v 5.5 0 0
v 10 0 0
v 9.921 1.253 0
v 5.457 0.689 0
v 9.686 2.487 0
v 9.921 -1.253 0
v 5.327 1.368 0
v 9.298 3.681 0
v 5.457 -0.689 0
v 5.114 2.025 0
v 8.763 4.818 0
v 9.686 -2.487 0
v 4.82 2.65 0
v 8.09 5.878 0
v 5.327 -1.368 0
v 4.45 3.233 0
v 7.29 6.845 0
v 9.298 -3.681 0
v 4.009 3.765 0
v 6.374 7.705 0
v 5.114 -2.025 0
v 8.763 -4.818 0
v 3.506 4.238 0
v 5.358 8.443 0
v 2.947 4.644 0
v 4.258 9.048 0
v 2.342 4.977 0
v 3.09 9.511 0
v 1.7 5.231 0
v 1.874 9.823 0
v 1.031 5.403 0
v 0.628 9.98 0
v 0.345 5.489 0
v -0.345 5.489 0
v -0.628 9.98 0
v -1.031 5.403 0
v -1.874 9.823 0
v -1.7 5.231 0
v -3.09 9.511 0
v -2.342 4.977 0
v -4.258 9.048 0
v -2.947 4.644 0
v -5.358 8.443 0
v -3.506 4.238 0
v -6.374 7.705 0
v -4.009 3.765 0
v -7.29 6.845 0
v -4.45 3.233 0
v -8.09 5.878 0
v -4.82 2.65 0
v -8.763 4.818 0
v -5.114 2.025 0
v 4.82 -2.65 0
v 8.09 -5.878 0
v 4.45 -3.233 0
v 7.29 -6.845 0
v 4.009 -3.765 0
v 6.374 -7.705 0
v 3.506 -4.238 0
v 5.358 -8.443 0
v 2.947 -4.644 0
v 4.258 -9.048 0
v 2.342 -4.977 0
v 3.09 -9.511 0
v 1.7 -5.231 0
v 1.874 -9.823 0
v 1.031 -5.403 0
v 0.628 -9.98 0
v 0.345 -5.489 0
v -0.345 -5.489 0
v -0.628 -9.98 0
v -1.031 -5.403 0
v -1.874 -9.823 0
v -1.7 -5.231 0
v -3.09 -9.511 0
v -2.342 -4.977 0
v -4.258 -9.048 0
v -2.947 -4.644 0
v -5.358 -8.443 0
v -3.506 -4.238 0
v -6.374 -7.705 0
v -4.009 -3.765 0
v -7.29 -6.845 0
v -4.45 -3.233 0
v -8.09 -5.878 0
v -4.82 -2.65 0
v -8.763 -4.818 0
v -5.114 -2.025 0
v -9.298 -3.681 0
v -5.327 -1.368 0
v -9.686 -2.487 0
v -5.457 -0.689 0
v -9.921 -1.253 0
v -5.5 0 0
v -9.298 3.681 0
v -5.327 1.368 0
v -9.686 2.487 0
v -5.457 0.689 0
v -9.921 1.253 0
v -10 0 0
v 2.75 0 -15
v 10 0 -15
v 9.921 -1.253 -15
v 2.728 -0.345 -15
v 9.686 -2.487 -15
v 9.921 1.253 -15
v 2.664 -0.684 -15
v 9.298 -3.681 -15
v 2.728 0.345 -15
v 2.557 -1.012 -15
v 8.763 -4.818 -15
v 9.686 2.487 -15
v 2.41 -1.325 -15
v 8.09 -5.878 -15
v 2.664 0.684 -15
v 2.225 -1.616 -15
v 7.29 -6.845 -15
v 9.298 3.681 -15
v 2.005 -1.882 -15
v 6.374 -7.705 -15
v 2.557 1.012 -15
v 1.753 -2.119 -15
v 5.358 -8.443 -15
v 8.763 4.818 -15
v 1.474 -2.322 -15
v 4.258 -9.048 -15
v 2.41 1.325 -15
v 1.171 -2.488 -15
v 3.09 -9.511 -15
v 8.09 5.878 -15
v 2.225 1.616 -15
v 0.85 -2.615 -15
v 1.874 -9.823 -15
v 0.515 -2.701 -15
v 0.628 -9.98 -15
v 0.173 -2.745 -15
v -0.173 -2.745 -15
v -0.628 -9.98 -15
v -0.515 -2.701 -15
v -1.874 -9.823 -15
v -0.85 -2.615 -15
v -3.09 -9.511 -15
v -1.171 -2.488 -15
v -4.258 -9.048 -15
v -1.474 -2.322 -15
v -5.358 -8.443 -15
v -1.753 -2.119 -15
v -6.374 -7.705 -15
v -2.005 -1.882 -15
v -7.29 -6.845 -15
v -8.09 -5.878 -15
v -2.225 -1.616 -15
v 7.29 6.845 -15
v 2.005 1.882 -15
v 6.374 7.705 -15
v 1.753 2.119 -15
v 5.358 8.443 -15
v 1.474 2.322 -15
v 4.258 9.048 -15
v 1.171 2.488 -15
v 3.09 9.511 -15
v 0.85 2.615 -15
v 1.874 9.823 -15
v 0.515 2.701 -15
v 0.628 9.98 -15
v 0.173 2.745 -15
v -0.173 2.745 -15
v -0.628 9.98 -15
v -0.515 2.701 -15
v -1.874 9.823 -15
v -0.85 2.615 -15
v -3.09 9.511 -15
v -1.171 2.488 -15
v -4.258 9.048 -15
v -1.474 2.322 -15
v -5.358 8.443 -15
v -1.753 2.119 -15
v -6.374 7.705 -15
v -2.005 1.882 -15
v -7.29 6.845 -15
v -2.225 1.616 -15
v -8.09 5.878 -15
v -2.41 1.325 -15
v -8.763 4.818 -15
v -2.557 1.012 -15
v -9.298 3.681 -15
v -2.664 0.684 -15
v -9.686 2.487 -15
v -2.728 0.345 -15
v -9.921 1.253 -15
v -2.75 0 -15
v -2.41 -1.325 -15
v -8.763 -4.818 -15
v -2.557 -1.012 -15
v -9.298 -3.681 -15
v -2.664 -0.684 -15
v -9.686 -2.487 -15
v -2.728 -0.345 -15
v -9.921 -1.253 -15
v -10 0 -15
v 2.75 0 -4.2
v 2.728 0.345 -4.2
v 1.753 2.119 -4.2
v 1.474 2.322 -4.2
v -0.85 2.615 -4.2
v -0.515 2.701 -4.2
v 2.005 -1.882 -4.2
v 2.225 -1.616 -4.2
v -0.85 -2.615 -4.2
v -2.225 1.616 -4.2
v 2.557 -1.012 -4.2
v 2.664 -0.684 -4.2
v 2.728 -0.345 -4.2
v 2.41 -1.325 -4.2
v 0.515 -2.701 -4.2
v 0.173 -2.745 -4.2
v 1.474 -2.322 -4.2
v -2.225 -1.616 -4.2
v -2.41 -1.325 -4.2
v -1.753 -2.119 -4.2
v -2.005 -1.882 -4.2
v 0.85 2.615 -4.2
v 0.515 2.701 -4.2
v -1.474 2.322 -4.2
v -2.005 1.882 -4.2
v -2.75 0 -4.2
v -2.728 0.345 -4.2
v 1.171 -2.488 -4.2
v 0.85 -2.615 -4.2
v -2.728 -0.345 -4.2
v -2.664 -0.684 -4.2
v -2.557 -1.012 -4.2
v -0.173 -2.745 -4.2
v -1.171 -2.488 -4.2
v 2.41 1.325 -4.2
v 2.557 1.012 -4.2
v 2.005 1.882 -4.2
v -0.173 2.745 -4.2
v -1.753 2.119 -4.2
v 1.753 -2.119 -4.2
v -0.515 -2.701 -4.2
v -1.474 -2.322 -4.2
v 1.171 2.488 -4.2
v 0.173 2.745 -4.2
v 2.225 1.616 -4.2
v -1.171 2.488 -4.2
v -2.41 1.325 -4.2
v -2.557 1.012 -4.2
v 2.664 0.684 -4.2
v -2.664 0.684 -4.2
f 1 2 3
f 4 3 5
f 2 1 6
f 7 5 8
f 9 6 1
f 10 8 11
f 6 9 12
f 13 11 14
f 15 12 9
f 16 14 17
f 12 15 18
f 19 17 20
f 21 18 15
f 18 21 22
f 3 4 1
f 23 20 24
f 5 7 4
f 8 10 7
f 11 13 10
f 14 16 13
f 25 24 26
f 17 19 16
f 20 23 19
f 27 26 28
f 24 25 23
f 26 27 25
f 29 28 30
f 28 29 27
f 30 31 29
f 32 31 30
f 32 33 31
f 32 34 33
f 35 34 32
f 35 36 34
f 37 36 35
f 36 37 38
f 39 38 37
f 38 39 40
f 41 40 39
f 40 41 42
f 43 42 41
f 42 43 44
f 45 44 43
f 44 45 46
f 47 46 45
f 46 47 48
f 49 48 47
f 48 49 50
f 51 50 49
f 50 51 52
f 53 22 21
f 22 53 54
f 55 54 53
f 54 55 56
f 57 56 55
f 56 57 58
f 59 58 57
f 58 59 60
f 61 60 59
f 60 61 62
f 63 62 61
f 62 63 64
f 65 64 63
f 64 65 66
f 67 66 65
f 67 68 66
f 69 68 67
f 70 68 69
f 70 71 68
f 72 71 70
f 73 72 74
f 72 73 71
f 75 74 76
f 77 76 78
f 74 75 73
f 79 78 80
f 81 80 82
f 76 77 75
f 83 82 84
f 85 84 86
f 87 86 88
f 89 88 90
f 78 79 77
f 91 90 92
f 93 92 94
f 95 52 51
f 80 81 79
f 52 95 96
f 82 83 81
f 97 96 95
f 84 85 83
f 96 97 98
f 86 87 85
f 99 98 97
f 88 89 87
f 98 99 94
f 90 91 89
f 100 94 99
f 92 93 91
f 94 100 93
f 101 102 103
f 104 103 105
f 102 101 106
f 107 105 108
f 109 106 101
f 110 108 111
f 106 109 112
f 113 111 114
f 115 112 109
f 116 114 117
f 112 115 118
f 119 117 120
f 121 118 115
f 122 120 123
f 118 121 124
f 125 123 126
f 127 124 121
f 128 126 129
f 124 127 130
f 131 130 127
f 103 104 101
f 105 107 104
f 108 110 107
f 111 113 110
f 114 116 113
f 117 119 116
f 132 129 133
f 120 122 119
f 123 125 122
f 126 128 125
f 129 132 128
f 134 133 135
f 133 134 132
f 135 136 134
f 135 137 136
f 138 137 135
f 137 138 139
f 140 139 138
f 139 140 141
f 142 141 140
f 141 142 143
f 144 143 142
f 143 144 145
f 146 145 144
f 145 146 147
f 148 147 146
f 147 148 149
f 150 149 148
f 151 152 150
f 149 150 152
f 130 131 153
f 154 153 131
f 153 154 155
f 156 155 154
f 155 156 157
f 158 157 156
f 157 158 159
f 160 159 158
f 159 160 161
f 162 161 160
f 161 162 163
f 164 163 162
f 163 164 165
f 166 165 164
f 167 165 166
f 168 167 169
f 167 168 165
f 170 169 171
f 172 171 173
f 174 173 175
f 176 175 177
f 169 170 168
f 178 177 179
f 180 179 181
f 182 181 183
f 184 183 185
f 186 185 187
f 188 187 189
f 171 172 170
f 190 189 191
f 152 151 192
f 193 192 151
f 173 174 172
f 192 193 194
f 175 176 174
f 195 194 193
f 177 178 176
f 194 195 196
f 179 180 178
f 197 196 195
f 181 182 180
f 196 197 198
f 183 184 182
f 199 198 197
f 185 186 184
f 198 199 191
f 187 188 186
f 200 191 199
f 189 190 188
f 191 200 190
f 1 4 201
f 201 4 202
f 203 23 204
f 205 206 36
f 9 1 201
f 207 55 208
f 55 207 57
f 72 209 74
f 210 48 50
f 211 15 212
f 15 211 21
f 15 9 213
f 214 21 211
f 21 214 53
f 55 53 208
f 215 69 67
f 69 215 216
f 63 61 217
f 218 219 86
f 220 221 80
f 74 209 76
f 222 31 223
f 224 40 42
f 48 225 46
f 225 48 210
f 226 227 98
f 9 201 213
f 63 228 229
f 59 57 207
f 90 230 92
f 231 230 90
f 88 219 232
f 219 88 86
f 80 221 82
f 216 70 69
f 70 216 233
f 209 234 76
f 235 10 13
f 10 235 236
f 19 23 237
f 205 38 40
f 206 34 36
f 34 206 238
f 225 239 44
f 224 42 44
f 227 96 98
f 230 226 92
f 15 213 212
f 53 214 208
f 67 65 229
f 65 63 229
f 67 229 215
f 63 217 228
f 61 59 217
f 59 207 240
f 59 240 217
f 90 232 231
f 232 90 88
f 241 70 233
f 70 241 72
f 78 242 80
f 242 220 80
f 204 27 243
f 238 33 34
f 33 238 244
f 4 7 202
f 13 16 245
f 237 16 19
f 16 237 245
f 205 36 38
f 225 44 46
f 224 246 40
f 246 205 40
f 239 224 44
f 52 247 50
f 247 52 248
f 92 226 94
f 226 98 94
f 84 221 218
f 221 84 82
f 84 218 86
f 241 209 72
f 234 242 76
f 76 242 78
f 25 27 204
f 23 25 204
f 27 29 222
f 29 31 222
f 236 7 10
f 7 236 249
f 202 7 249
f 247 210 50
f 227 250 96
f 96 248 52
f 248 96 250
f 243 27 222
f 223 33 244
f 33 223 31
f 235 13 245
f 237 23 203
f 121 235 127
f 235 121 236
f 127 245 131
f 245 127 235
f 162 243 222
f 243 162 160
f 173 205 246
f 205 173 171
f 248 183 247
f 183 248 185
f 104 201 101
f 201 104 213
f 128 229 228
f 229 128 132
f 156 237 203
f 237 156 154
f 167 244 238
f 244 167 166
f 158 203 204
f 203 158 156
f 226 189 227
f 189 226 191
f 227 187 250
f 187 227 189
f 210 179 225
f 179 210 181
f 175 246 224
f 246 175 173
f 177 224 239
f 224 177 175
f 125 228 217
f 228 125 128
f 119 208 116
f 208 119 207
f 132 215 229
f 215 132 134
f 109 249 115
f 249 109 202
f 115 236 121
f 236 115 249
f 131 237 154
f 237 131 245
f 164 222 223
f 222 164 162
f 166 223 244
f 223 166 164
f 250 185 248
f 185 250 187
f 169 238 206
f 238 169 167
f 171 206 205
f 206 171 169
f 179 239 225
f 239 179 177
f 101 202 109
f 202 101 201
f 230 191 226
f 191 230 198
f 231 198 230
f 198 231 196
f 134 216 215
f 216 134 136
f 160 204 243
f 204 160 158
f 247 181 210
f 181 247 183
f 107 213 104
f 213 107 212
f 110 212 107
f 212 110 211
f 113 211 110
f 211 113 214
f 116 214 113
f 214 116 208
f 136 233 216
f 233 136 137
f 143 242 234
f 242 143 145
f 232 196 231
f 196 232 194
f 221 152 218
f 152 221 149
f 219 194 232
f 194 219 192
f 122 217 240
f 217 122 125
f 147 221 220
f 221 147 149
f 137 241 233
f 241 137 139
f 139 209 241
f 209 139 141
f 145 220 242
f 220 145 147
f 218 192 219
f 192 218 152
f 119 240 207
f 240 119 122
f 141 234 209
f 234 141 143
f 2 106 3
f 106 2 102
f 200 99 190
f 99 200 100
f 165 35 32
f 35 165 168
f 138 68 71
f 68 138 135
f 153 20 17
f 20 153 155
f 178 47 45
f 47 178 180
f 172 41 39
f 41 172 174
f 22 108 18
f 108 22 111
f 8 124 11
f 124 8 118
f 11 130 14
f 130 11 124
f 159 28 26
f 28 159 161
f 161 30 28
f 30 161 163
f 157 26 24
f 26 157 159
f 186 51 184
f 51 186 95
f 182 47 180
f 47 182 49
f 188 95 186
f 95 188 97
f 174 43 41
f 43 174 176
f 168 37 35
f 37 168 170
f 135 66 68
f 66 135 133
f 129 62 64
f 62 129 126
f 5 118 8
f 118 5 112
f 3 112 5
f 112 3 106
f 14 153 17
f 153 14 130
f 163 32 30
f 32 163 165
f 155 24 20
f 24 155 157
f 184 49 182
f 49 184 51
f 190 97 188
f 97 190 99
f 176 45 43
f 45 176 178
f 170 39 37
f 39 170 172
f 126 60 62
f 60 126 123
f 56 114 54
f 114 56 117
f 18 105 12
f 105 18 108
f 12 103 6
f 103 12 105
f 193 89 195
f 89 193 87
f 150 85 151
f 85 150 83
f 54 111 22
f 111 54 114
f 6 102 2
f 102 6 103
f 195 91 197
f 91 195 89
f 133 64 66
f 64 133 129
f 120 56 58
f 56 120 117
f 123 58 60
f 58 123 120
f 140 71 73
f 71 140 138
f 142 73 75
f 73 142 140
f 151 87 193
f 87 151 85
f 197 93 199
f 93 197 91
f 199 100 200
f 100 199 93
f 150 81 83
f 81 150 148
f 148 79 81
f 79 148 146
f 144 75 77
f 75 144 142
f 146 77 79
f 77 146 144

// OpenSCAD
$fn = 50;


difference() {
	union() {
		translate(v = [0, 0, -15.0000000000]) {
			cylinder(h = 15, r = 10.0000000000);
		}
		cylinder(h = 0, r = 16.0000000000);
	}
	union() {
		translate(v = [0, 0, 0]) {
			rotate(a = [0, 0, 0]) {
				difference() {
					union() {
						#translate(v = [0, 0, -15.0000000000]) {
							cylinder(h = 15, r = 2.2500000000);
						}
						#translate(v = [0, 0, -4.2000000000]) {
							cylinder(h = 4.2000000000, r = 10.0000000000, r1 = 2.7500000000, r2 = 5.5000000000);
						}
						#translate(v = [0, 0, -15.0000000000]) {
							cylinder(h = 15, r = 2.7500000000);
						}
						#translate(v = [0, 0, -15.0000000000]) {
							cylinder(h = 15, r = 2.2500000000);
						}
					}
					union();
				}
			}
		}
	}
}
